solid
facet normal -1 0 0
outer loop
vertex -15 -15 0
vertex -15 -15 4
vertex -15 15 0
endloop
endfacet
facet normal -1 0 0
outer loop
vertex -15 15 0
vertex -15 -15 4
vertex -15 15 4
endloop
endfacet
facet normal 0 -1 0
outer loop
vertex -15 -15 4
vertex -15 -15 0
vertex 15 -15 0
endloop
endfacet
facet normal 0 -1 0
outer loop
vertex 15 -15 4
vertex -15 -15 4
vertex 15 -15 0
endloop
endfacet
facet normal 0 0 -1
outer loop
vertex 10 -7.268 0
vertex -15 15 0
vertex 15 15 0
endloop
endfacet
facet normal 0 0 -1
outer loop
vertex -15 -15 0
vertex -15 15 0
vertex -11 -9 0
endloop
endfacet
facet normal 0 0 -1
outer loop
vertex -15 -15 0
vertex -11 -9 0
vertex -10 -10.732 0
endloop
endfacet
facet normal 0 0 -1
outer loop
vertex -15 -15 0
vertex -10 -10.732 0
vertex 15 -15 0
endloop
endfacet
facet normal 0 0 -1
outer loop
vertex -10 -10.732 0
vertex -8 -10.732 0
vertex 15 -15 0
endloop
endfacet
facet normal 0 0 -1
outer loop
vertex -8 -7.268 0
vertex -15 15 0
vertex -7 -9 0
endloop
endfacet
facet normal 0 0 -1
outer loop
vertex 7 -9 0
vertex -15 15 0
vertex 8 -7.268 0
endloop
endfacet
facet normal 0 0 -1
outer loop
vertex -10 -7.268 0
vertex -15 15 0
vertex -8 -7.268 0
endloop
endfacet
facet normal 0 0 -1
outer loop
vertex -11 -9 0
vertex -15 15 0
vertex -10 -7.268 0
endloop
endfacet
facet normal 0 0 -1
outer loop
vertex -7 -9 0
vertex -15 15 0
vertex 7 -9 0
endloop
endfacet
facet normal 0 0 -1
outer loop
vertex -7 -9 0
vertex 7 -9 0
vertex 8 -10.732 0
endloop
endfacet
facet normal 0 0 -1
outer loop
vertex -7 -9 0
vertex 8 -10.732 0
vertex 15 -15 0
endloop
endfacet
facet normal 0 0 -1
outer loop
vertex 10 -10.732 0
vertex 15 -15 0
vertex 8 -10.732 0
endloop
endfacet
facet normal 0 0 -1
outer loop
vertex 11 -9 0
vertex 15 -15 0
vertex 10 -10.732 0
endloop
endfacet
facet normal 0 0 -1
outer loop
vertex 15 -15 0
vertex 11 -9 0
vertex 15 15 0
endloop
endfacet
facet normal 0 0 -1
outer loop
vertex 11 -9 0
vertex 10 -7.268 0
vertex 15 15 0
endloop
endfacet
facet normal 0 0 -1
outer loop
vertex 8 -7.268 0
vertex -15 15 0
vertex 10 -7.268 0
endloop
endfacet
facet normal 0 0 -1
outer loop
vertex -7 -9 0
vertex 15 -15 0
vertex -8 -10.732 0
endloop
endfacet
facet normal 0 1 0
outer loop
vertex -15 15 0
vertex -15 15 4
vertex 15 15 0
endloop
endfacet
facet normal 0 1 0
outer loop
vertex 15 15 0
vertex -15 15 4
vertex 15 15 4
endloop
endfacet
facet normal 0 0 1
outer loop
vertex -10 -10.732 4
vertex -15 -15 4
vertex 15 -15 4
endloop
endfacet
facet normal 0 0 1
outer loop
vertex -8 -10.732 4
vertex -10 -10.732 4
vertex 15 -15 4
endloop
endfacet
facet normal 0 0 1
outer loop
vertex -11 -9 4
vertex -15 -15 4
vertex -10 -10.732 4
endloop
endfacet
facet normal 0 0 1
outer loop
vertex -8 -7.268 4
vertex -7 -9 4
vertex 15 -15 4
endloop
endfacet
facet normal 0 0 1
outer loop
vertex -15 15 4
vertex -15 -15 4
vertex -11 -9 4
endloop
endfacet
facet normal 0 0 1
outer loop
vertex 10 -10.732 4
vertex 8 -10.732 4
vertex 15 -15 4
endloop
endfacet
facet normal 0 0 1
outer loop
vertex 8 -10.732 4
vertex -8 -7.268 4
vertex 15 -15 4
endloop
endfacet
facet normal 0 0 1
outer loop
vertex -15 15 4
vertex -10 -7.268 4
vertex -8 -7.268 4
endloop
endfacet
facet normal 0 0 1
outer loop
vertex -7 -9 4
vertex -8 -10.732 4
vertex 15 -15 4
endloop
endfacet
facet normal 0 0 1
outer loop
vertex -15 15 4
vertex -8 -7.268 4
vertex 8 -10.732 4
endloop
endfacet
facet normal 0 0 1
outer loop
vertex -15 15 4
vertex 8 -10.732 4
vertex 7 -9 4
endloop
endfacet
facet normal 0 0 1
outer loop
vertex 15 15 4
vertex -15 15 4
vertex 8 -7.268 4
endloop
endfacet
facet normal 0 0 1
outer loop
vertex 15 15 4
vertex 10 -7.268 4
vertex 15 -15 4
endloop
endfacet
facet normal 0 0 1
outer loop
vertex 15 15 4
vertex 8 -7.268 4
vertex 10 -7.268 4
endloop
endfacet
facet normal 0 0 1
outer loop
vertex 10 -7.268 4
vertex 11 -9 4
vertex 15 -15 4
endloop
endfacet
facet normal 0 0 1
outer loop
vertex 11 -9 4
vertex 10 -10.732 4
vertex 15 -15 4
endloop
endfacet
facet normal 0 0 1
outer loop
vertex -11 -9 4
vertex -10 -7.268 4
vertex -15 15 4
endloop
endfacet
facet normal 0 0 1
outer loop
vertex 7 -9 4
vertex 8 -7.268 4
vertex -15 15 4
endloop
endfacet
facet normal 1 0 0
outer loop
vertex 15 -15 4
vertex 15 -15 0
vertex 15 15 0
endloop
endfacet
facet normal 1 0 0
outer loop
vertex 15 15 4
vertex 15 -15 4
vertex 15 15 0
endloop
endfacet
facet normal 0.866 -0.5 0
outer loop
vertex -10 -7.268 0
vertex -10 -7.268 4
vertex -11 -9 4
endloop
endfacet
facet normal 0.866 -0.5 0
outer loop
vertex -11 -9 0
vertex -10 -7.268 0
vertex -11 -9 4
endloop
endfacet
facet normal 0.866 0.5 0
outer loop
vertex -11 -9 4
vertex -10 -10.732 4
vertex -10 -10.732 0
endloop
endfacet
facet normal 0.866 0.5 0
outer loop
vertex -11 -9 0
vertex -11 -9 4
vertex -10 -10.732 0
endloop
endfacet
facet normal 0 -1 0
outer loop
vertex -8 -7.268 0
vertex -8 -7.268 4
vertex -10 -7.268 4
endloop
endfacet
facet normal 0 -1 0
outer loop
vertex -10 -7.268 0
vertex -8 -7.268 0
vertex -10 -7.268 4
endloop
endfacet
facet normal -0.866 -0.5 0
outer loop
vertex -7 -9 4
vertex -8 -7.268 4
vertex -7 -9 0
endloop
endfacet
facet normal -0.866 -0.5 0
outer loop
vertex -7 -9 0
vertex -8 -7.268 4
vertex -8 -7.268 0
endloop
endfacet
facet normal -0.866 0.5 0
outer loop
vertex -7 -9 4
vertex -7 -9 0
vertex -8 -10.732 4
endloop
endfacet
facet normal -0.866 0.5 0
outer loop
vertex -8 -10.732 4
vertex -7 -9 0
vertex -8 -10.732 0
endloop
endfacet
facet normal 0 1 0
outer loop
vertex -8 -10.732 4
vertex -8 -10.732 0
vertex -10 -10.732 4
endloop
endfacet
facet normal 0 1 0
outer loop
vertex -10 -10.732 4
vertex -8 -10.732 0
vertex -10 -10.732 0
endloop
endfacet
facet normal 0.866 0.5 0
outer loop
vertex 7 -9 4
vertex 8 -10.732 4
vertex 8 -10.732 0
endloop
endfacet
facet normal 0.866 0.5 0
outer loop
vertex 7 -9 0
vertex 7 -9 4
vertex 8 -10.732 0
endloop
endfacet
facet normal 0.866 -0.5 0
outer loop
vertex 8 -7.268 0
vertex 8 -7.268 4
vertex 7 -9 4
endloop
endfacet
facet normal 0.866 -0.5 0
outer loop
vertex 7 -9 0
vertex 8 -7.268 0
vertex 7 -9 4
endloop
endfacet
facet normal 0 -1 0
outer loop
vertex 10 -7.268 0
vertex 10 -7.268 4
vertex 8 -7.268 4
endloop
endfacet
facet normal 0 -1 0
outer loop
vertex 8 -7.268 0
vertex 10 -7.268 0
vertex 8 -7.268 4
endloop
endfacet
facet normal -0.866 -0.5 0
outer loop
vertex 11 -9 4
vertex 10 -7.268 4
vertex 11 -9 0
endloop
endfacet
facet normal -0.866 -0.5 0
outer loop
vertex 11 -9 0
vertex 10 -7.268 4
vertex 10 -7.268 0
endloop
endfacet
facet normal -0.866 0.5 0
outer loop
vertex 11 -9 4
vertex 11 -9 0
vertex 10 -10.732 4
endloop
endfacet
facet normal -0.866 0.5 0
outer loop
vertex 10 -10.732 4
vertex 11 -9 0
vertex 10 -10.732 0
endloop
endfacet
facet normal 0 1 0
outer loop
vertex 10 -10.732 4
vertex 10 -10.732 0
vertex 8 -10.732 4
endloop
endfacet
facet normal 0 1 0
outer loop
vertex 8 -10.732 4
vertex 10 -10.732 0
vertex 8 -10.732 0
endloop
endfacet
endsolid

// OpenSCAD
difference(){
translate(v = [0, 0, 2]) cube(size = [30,30,4], center = true);
translate(v = [9, -9, 0])  cylinder(h = 10, r=2, center=true, $fn=6);
translate(v = [-9, -9, 0])  cylinder(h = 10, r=2, center=true, $fn=6);
}
